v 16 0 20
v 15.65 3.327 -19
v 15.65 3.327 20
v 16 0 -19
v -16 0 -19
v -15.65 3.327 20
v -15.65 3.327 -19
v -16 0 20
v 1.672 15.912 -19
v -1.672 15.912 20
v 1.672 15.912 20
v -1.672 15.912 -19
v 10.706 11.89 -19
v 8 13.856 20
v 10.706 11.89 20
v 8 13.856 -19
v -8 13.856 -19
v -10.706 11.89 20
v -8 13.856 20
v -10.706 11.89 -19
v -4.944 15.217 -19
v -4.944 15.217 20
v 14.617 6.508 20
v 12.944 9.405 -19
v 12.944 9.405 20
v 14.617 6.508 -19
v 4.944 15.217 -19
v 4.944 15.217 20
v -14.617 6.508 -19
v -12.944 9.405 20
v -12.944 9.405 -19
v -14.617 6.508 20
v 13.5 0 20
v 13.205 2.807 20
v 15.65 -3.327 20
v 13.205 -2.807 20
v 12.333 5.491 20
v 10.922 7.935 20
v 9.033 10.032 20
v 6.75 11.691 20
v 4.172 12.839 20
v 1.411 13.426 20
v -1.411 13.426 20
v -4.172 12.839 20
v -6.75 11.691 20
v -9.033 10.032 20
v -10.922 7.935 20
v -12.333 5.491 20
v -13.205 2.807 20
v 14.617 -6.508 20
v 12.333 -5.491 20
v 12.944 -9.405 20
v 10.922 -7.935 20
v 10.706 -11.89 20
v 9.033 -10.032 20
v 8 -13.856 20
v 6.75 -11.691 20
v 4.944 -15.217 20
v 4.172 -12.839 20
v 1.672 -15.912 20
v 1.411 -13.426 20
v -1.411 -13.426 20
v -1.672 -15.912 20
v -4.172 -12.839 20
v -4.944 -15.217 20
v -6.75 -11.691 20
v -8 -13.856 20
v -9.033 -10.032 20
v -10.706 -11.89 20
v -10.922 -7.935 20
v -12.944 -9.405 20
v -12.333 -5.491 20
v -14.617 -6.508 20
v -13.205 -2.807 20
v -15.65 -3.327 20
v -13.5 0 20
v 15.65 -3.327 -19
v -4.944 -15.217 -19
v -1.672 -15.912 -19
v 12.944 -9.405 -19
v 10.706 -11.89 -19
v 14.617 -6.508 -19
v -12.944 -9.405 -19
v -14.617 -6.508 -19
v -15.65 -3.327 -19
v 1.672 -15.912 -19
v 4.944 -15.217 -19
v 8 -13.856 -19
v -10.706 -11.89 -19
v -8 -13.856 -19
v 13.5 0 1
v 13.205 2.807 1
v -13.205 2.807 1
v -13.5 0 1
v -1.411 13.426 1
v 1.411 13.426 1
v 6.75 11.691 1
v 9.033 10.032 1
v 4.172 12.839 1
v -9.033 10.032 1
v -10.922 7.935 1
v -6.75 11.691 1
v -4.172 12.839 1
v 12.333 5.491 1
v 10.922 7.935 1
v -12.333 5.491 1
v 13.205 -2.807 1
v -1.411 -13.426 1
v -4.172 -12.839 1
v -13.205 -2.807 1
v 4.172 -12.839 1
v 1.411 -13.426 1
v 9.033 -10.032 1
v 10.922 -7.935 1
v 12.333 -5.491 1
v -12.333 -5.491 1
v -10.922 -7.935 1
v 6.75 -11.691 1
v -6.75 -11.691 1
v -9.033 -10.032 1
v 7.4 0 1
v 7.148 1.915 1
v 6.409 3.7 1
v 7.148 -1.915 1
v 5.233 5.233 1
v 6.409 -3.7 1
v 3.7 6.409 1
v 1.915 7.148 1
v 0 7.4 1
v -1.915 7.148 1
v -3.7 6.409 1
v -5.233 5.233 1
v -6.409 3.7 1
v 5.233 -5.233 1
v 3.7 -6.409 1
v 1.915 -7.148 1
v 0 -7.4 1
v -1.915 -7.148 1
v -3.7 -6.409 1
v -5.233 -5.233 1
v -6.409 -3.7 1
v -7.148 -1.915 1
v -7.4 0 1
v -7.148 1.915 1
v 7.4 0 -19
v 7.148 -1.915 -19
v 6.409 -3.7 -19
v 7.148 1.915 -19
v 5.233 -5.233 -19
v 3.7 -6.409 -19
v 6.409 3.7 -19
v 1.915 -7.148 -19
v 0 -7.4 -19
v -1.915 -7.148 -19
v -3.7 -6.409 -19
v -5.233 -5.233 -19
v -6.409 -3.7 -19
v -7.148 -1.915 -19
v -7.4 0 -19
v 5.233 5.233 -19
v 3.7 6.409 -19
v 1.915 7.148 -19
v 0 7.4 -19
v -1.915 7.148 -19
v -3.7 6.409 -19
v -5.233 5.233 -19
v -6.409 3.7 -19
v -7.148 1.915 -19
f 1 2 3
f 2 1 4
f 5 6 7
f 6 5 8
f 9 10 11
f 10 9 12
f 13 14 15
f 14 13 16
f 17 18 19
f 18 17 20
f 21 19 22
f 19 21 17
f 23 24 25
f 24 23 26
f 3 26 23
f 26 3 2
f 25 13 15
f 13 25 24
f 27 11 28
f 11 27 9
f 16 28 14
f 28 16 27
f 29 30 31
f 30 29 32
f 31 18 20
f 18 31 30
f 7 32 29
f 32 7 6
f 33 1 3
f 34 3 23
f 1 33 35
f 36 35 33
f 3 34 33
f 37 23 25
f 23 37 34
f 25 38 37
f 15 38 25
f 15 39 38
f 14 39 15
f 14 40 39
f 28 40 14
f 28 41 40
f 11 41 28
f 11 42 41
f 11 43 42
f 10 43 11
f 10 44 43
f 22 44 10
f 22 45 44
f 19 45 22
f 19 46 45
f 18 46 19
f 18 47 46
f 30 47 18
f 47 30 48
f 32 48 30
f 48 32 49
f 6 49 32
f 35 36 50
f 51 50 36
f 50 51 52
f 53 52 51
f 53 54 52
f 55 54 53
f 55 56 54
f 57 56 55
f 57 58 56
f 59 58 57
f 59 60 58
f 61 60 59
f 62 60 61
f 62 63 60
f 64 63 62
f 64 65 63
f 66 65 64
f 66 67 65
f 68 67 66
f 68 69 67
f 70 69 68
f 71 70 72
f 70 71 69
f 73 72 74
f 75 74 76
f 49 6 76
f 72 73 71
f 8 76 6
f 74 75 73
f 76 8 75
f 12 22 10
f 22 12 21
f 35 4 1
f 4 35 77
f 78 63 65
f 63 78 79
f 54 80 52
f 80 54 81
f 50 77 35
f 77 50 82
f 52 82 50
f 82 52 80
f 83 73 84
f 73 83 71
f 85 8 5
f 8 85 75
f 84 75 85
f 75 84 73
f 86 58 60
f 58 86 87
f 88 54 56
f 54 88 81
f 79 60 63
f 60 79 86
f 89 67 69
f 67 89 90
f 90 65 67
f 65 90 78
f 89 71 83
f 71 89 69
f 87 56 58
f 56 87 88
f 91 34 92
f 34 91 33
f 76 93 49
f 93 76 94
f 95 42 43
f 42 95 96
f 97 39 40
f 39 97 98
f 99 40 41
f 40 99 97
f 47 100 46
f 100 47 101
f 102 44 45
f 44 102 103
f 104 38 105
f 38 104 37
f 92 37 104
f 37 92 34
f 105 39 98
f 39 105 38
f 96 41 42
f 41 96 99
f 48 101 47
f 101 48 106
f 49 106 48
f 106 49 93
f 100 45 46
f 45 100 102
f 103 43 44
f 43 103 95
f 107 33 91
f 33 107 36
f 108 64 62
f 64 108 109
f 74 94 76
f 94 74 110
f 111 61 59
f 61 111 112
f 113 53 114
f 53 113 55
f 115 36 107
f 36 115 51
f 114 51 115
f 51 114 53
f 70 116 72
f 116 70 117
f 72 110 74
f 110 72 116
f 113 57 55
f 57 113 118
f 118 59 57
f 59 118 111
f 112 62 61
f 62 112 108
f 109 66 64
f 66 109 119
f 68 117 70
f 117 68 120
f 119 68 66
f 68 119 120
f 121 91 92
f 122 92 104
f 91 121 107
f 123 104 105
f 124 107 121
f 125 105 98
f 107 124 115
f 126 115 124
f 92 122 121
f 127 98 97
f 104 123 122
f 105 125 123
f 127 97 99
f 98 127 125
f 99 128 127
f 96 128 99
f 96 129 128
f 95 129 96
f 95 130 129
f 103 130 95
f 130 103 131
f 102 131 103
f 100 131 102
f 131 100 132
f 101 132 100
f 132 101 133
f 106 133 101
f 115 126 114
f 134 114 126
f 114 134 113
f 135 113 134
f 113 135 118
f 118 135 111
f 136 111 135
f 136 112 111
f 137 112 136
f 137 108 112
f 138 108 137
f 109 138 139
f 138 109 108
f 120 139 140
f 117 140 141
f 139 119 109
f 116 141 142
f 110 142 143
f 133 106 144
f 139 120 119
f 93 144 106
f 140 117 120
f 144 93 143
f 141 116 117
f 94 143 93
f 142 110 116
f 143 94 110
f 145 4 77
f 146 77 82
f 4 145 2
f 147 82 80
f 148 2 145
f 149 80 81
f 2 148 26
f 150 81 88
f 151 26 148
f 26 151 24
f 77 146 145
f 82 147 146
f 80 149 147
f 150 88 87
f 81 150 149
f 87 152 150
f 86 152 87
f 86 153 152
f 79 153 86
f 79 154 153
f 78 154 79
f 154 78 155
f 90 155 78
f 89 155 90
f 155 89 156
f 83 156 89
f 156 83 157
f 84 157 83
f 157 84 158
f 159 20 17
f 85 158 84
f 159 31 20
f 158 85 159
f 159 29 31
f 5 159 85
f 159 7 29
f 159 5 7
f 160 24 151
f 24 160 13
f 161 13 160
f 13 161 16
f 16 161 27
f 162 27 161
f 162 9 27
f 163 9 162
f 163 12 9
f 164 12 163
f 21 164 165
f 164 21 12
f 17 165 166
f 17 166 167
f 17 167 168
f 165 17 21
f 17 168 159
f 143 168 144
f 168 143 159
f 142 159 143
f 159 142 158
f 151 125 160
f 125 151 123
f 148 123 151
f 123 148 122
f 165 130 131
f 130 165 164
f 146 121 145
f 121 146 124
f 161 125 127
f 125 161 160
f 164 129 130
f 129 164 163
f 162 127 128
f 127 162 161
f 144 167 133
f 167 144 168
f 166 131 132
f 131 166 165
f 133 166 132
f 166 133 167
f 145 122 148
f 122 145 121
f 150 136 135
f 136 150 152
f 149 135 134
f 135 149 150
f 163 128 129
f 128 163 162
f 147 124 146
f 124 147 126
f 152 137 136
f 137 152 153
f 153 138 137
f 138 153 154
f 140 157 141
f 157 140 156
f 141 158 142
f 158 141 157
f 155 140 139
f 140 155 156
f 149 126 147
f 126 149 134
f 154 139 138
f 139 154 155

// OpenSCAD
union() {
	translate([0,0,-19])
	difference() {
		cylinder(r=26/2+3,h=20);
		translate([0,0,-1])
		cylinder(r=7.4,h=22);
	}
	difference() {
		cylinder(r=26/2+3,h=20);
		translate([0,0,-1])
		cylinder(r=26/2+0.5,h=22);
	}
}
